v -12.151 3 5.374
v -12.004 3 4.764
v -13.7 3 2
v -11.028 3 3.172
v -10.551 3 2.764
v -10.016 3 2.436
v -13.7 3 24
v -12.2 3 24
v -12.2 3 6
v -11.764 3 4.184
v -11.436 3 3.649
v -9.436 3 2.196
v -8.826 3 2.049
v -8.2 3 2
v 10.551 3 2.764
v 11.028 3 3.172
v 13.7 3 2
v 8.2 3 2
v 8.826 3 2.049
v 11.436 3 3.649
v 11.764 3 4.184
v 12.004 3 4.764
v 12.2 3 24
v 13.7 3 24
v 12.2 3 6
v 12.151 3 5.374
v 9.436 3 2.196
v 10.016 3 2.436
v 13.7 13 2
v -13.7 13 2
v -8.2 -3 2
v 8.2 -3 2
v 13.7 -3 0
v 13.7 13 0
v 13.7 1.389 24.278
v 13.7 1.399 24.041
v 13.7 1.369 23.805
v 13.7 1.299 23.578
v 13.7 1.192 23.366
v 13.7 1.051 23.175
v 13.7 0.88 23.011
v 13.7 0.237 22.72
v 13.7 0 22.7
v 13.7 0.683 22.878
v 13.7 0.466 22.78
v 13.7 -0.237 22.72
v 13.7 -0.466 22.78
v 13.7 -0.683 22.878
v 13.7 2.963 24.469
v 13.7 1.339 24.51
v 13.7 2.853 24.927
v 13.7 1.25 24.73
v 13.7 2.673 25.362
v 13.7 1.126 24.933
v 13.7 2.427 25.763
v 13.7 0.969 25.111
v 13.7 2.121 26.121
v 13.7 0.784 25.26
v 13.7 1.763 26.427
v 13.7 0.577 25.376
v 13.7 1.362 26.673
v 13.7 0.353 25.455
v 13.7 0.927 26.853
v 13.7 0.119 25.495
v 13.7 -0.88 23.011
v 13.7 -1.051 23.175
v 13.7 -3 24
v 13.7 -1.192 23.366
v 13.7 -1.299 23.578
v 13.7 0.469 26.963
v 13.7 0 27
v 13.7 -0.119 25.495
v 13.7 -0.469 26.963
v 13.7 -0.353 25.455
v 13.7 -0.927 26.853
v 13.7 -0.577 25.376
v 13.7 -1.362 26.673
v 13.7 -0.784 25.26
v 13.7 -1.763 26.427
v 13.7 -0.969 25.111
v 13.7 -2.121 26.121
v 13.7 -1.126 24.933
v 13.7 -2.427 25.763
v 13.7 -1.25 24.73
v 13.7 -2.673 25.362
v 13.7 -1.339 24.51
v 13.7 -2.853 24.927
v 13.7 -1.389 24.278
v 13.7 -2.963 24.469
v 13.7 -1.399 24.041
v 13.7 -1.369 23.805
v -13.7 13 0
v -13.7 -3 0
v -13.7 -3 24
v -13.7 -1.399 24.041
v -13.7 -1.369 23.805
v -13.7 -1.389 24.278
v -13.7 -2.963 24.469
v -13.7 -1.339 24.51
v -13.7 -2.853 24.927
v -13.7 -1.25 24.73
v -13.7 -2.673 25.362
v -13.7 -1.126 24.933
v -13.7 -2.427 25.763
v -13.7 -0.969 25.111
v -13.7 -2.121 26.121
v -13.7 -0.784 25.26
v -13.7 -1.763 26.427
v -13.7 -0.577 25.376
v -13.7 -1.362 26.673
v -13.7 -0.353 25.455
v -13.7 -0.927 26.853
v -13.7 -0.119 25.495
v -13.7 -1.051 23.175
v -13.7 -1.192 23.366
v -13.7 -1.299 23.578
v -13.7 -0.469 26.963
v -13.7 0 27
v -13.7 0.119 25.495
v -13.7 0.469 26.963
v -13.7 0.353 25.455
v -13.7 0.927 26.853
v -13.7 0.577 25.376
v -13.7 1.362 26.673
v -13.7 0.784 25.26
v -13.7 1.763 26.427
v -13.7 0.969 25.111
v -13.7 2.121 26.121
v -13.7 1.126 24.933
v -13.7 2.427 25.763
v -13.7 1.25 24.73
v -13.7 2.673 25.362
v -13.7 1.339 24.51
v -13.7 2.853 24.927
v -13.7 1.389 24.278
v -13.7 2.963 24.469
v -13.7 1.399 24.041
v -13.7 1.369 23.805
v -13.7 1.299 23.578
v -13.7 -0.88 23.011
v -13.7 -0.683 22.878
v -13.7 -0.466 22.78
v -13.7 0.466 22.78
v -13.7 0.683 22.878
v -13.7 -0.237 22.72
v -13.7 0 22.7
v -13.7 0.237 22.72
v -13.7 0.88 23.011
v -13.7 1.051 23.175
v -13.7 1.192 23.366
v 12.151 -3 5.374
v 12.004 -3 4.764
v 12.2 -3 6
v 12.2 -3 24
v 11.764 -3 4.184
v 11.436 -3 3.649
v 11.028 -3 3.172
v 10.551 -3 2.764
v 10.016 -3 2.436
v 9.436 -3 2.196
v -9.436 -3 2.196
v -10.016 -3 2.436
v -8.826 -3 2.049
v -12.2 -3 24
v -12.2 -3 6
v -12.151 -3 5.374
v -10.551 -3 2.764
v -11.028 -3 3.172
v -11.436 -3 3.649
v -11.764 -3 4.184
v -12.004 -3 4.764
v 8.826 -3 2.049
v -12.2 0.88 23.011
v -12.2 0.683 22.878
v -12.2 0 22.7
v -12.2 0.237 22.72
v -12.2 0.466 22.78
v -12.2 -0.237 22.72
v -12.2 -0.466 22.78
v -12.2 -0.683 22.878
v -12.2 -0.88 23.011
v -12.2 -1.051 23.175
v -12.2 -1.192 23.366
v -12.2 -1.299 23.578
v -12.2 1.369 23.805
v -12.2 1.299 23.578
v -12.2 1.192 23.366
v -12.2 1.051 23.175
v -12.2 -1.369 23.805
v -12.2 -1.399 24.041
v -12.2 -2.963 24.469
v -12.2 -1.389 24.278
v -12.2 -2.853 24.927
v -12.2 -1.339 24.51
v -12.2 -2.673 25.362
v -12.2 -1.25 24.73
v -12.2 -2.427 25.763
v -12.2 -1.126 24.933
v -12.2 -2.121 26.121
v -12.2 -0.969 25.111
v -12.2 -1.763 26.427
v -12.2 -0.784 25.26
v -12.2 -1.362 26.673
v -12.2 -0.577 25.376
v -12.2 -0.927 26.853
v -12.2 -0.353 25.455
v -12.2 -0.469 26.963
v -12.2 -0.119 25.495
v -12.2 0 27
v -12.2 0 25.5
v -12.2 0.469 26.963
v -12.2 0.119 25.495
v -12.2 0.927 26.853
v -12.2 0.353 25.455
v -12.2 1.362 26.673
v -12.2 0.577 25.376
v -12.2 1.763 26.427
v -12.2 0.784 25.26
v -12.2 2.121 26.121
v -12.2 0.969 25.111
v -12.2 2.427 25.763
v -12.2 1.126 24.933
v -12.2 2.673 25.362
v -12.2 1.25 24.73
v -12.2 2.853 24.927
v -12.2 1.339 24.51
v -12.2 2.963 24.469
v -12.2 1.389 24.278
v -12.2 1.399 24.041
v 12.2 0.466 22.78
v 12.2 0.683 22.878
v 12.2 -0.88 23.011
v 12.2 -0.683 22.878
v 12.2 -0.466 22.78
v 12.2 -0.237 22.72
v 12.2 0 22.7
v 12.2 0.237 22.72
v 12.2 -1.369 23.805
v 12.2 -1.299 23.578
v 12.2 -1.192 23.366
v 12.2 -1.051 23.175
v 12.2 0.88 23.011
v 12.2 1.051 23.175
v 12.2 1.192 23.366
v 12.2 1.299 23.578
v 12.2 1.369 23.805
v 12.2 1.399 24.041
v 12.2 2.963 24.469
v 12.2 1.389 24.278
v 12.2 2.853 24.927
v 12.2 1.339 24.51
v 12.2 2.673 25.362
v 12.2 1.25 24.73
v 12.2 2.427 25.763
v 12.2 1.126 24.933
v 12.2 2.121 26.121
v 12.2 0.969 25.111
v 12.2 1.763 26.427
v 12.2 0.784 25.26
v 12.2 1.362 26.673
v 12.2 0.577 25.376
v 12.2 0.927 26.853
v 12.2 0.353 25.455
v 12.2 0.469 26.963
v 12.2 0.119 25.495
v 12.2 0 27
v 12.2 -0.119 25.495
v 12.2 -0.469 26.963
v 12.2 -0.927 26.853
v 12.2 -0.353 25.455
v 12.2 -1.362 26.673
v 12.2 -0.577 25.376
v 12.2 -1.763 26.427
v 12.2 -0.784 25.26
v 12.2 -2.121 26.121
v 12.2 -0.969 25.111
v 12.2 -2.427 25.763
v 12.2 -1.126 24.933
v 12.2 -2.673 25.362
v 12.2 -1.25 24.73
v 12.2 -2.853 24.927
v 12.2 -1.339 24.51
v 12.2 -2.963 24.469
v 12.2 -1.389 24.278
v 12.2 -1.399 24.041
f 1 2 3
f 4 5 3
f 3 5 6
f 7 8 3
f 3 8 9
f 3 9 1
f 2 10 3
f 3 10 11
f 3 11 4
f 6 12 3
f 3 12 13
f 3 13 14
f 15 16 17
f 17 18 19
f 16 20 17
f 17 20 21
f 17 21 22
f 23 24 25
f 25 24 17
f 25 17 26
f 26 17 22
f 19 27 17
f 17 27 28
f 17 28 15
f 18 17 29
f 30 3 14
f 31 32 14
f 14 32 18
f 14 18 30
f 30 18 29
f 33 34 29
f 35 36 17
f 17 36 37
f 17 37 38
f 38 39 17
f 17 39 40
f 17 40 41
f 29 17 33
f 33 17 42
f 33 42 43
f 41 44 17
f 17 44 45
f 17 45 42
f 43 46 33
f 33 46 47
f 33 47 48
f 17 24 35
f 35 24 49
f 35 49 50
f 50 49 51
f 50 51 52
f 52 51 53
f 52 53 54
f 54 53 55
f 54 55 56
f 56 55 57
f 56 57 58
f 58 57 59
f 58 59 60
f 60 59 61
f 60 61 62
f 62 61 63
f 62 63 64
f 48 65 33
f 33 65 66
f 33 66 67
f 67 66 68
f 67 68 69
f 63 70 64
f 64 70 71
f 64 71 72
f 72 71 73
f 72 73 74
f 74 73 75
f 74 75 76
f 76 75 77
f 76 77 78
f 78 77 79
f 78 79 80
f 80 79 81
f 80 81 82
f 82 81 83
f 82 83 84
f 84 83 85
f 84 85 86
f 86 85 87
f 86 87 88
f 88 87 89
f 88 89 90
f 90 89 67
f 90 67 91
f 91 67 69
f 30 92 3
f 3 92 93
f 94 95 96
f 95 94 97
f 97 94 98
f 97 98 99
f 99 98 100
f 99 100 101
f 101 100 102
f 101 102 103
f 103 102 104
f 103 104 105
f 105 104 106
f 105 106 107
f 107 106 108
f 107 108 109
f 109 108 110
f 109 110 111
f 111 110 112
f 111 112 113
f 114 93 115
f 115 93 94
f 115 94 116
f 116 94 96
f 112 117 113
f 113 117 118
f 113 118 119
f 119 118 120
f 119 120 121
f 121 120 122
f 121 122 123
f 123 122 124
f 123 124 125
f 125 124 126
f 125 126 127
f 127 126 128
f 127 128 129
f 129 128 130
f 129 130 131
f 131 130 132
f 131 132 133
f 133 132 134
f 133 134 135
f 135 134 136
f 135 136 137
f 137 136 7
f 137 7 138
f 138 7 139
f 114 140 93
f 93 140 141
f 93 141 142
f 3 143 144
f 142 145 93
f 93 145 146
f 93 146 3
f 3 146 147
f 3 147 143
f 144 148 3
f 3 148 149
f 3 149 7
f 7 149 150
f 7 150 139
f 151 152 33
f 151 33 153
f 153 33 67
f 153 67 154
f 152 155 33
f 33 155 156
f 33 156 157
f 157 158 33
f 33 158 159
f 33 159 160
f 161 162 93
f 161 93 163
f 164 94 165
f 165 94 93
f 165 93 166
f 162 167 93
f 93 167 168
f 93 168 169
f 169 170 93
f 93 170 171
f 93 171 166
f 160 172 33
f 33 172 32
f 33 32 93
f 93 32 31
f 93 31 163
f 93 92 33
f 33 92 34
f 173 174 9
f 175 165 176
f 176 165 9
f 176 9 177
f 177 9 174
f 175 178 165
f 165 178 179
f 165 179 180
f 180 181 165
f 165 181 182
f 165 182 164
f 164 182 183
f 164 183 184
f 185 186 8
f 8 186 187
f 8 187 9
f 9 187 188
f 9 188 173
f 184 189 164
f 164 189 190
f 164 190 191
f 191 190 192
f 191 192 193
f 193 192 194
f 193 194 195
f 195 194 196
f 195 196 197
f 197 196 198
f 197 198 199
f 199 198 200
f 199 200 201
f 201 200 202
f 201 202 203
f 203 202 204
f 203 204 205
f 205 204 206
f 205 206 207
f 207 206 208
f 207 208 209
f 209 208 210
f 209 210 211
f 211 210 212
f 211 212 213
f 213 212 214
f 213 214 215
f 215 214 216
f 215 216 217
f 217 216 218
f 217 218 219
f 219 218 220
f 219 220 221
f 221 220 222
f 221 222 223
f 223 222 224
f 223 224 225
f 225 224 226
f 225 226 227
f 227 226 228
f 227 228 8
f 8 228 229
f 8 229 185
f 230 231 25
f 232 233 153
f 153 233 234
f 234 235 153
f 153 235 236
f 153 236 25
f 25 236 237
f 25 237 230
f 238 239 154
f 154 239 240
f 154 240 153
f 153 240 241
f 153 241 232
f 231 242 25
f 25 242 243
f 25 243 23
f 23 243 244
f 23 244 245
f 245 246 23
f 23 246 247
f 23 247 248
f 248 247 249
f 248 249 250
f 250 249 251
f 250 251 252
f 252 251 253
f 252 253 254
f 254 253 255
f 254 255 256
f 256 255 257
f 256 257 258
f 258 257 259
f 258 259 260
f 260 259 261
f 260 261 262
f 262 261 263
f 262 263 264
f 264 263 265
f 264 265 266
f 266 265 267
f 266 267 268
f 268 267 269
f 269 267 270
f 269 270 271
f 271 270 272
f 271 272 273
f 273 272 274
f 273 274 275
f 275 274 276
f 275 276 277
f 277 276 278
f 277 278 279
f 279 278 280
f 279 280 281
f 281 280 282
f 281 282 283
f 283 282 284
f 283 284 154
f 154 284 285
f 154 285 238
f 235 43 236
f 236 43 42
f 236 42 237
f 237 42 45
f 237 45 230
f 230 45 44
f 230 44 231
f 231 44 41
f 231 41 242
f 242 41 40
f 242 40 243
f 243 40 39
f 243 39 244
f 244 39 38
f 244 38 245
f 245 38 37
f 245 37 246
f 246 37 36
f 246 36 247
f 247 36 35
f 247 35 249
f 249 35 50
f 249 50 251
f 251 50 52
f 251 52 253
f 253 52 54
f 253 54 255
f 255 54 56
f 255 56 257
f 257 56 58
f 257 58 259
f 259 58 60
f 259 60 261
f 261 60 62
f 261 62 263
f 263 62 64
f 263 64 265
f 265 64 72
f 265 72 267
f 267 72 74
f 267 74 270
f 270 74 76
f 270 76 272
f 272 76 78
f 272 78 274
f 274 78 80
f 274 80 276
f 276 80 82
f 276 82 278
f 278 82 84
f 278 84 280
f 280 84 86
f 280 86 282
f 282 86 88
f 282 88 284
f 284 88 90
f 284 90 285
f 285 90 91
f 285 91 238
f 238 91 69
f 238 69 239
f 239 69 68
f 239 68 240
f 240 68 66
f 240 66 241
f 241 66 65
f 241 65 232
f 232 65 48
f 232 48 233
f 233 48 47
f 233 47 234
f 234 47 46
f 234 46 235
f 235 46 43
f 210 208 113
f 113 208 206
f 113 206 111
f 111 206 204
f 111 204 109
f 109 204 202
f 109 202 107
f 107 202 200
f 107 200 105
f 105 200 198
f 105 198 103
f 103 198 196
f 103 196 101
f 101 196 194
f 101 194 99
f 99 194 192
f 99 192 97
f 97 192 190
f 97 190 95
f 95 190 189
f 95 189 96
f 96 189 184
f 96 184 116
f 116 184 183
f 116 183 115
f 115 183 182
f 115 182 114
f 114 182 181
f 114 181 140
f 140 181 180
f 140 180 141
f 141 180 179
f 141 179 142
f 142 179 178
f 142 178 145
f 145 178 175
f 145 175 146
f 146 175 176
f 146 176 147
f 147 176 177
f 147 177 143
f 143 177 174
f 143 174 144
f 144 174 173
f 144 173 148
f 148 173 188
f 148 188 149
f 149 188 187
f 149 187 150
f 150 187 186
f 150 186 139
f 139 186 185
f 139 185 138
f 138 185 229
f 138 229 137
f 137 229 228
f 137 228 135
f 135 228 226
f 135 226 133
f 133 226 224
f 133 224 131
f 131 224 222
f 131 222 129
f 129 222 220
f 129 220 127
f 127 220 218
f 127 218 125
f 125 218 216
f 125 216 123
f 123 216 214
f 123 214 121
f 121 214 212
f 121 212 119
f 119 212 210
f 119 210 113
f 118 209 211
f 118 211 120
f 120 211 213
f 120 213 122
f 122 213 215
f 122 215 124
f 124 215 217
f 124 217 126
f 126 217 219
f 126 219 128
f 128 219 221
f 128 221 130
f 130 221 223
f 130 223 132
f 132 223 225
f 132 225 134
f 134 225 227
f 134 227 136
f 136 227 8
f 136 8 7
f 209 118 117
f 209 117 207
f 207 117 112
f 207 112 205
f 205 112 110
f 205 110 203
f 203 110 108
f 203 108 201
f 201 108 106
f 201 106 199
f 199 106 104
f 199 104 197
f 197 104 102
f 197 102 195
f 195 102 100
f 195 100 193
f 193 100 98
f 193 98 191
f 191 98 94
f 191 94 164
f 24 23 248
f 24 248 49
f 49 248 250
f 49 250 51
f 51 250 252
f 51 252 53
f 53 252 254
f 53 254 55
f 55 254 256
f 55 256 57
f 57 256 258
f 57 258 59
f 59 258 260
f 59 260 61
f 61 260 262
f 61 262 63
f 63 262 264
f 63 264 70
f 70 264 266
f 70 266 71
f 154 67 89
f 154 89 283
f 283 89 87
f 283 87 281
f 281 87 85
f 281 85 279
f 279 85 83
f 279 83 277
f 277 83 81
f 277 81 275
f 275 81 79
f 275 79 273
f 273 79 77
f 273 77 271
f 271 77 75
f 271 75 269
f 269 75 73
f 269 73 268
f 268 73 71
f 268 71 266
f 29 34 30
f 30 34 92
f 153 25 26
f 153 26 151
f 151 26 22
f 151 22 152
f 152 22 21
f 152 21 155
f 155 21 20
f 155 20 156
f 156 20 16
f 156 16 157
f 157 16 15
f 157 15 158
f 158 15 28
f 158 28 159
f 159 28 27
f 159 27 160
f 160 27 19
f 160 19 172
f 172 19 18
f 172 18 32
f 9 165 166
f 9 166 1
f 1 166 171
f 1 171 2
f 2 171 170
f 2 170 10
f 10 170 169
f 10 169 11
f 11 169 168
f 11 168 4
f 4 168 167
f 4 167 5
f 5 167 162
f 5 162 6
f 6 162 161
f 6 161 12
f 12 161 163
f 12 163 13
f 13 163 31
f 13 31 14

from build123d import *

# Parameters (mm, degrees)
SKETCH1_W           = 27.4
SKETCH1_H           = 6
BOSS_EXTRUDE1_DEPTH = 2
SKETCH2_W           = 1.5
SKETCH2_H           = 6
BOSS_EXTRUDE2_DEPTH = 25
SKETCH3_R           = 1.4
CUT_EXTRUDE1_DEPTH  = 39.584452828
FILLET1_R           = 3
SKETCH4_W           = 27.4
SKETCH4_H           = 2
BOSS_EXTRUDE3_DEPTH = 10
FILLET2_R           = 4


with BuildPart() as part:
    # Sketch1 → Boss-Extrude1 (new body)
    with BuildSketch(Plane.XY):
        Rectangle(SKETCH1_W, SKETCH1_H)
    extrude(amount=BOSS_EXTRUDE1_DEPTH)

    # Sketch2 → Boss-Extrude2 (add)
    with BuildSketch(Plane.XY.offset(2)):
        with Locations((-12.95, 0)):
            Rectangle(SKETCH2_W, SKETCH2_H)
        with Locations((12.95, 0)):
            Rectangle(SKETCH2_W, SKETCH2_H)
    extrude(amount=BOSS_EXTRUDE2_DEPTH)

    # Sketch3 → Cut-Extrude1 (cut, through all)
    with BuildSketch(Plane(origin=(13.7, 0, 0), x_dir=(0, 0, -1), z_dir=(1, 0, 0))):
        with Locations((-24.1, 0)):
            Circle(SKETCH3_R)
    extrude(amount=-CUT_EXTRUDE1_DEPTH, mode=Mode.SUBTRACT)

    # Fillet1
    fillet1_edges = [part.edges().sort_by_distance(p)[0] for p in [
        (-12.95, -3, 27),
        (12.95, -3, 27),
        (-12.95, 3, 27),
        (12.95, 3, 27),
    ]]
    fillet(fillet1_edges, radius=FILLET1_R - 0.0001)  # a hair under: the kernel refuses the full size

    # Sketch4 → Boss-Extrude3 (add)
    with BuildSketch(Plane(origin=(0, 3, 0), x_dir=(1, 0, 0), z_dir=(0, 1, 0))):
        with Locations((0, -1)):
            Rectangle(SKETCH4_W, SKETCH4_H)
    extrude(amount=BOSS_EXTRUDE3_DEPTH)

    # Fillet2
    fillet2_edges = [part.edges().sort_by_distance(p)[0] for p in [
        (12.2, 0, 2),
        (-12.2, 0, 2),
    ]]
    fillet(fillet2_edges, radius=FILLET2_R)


solid = part.part
